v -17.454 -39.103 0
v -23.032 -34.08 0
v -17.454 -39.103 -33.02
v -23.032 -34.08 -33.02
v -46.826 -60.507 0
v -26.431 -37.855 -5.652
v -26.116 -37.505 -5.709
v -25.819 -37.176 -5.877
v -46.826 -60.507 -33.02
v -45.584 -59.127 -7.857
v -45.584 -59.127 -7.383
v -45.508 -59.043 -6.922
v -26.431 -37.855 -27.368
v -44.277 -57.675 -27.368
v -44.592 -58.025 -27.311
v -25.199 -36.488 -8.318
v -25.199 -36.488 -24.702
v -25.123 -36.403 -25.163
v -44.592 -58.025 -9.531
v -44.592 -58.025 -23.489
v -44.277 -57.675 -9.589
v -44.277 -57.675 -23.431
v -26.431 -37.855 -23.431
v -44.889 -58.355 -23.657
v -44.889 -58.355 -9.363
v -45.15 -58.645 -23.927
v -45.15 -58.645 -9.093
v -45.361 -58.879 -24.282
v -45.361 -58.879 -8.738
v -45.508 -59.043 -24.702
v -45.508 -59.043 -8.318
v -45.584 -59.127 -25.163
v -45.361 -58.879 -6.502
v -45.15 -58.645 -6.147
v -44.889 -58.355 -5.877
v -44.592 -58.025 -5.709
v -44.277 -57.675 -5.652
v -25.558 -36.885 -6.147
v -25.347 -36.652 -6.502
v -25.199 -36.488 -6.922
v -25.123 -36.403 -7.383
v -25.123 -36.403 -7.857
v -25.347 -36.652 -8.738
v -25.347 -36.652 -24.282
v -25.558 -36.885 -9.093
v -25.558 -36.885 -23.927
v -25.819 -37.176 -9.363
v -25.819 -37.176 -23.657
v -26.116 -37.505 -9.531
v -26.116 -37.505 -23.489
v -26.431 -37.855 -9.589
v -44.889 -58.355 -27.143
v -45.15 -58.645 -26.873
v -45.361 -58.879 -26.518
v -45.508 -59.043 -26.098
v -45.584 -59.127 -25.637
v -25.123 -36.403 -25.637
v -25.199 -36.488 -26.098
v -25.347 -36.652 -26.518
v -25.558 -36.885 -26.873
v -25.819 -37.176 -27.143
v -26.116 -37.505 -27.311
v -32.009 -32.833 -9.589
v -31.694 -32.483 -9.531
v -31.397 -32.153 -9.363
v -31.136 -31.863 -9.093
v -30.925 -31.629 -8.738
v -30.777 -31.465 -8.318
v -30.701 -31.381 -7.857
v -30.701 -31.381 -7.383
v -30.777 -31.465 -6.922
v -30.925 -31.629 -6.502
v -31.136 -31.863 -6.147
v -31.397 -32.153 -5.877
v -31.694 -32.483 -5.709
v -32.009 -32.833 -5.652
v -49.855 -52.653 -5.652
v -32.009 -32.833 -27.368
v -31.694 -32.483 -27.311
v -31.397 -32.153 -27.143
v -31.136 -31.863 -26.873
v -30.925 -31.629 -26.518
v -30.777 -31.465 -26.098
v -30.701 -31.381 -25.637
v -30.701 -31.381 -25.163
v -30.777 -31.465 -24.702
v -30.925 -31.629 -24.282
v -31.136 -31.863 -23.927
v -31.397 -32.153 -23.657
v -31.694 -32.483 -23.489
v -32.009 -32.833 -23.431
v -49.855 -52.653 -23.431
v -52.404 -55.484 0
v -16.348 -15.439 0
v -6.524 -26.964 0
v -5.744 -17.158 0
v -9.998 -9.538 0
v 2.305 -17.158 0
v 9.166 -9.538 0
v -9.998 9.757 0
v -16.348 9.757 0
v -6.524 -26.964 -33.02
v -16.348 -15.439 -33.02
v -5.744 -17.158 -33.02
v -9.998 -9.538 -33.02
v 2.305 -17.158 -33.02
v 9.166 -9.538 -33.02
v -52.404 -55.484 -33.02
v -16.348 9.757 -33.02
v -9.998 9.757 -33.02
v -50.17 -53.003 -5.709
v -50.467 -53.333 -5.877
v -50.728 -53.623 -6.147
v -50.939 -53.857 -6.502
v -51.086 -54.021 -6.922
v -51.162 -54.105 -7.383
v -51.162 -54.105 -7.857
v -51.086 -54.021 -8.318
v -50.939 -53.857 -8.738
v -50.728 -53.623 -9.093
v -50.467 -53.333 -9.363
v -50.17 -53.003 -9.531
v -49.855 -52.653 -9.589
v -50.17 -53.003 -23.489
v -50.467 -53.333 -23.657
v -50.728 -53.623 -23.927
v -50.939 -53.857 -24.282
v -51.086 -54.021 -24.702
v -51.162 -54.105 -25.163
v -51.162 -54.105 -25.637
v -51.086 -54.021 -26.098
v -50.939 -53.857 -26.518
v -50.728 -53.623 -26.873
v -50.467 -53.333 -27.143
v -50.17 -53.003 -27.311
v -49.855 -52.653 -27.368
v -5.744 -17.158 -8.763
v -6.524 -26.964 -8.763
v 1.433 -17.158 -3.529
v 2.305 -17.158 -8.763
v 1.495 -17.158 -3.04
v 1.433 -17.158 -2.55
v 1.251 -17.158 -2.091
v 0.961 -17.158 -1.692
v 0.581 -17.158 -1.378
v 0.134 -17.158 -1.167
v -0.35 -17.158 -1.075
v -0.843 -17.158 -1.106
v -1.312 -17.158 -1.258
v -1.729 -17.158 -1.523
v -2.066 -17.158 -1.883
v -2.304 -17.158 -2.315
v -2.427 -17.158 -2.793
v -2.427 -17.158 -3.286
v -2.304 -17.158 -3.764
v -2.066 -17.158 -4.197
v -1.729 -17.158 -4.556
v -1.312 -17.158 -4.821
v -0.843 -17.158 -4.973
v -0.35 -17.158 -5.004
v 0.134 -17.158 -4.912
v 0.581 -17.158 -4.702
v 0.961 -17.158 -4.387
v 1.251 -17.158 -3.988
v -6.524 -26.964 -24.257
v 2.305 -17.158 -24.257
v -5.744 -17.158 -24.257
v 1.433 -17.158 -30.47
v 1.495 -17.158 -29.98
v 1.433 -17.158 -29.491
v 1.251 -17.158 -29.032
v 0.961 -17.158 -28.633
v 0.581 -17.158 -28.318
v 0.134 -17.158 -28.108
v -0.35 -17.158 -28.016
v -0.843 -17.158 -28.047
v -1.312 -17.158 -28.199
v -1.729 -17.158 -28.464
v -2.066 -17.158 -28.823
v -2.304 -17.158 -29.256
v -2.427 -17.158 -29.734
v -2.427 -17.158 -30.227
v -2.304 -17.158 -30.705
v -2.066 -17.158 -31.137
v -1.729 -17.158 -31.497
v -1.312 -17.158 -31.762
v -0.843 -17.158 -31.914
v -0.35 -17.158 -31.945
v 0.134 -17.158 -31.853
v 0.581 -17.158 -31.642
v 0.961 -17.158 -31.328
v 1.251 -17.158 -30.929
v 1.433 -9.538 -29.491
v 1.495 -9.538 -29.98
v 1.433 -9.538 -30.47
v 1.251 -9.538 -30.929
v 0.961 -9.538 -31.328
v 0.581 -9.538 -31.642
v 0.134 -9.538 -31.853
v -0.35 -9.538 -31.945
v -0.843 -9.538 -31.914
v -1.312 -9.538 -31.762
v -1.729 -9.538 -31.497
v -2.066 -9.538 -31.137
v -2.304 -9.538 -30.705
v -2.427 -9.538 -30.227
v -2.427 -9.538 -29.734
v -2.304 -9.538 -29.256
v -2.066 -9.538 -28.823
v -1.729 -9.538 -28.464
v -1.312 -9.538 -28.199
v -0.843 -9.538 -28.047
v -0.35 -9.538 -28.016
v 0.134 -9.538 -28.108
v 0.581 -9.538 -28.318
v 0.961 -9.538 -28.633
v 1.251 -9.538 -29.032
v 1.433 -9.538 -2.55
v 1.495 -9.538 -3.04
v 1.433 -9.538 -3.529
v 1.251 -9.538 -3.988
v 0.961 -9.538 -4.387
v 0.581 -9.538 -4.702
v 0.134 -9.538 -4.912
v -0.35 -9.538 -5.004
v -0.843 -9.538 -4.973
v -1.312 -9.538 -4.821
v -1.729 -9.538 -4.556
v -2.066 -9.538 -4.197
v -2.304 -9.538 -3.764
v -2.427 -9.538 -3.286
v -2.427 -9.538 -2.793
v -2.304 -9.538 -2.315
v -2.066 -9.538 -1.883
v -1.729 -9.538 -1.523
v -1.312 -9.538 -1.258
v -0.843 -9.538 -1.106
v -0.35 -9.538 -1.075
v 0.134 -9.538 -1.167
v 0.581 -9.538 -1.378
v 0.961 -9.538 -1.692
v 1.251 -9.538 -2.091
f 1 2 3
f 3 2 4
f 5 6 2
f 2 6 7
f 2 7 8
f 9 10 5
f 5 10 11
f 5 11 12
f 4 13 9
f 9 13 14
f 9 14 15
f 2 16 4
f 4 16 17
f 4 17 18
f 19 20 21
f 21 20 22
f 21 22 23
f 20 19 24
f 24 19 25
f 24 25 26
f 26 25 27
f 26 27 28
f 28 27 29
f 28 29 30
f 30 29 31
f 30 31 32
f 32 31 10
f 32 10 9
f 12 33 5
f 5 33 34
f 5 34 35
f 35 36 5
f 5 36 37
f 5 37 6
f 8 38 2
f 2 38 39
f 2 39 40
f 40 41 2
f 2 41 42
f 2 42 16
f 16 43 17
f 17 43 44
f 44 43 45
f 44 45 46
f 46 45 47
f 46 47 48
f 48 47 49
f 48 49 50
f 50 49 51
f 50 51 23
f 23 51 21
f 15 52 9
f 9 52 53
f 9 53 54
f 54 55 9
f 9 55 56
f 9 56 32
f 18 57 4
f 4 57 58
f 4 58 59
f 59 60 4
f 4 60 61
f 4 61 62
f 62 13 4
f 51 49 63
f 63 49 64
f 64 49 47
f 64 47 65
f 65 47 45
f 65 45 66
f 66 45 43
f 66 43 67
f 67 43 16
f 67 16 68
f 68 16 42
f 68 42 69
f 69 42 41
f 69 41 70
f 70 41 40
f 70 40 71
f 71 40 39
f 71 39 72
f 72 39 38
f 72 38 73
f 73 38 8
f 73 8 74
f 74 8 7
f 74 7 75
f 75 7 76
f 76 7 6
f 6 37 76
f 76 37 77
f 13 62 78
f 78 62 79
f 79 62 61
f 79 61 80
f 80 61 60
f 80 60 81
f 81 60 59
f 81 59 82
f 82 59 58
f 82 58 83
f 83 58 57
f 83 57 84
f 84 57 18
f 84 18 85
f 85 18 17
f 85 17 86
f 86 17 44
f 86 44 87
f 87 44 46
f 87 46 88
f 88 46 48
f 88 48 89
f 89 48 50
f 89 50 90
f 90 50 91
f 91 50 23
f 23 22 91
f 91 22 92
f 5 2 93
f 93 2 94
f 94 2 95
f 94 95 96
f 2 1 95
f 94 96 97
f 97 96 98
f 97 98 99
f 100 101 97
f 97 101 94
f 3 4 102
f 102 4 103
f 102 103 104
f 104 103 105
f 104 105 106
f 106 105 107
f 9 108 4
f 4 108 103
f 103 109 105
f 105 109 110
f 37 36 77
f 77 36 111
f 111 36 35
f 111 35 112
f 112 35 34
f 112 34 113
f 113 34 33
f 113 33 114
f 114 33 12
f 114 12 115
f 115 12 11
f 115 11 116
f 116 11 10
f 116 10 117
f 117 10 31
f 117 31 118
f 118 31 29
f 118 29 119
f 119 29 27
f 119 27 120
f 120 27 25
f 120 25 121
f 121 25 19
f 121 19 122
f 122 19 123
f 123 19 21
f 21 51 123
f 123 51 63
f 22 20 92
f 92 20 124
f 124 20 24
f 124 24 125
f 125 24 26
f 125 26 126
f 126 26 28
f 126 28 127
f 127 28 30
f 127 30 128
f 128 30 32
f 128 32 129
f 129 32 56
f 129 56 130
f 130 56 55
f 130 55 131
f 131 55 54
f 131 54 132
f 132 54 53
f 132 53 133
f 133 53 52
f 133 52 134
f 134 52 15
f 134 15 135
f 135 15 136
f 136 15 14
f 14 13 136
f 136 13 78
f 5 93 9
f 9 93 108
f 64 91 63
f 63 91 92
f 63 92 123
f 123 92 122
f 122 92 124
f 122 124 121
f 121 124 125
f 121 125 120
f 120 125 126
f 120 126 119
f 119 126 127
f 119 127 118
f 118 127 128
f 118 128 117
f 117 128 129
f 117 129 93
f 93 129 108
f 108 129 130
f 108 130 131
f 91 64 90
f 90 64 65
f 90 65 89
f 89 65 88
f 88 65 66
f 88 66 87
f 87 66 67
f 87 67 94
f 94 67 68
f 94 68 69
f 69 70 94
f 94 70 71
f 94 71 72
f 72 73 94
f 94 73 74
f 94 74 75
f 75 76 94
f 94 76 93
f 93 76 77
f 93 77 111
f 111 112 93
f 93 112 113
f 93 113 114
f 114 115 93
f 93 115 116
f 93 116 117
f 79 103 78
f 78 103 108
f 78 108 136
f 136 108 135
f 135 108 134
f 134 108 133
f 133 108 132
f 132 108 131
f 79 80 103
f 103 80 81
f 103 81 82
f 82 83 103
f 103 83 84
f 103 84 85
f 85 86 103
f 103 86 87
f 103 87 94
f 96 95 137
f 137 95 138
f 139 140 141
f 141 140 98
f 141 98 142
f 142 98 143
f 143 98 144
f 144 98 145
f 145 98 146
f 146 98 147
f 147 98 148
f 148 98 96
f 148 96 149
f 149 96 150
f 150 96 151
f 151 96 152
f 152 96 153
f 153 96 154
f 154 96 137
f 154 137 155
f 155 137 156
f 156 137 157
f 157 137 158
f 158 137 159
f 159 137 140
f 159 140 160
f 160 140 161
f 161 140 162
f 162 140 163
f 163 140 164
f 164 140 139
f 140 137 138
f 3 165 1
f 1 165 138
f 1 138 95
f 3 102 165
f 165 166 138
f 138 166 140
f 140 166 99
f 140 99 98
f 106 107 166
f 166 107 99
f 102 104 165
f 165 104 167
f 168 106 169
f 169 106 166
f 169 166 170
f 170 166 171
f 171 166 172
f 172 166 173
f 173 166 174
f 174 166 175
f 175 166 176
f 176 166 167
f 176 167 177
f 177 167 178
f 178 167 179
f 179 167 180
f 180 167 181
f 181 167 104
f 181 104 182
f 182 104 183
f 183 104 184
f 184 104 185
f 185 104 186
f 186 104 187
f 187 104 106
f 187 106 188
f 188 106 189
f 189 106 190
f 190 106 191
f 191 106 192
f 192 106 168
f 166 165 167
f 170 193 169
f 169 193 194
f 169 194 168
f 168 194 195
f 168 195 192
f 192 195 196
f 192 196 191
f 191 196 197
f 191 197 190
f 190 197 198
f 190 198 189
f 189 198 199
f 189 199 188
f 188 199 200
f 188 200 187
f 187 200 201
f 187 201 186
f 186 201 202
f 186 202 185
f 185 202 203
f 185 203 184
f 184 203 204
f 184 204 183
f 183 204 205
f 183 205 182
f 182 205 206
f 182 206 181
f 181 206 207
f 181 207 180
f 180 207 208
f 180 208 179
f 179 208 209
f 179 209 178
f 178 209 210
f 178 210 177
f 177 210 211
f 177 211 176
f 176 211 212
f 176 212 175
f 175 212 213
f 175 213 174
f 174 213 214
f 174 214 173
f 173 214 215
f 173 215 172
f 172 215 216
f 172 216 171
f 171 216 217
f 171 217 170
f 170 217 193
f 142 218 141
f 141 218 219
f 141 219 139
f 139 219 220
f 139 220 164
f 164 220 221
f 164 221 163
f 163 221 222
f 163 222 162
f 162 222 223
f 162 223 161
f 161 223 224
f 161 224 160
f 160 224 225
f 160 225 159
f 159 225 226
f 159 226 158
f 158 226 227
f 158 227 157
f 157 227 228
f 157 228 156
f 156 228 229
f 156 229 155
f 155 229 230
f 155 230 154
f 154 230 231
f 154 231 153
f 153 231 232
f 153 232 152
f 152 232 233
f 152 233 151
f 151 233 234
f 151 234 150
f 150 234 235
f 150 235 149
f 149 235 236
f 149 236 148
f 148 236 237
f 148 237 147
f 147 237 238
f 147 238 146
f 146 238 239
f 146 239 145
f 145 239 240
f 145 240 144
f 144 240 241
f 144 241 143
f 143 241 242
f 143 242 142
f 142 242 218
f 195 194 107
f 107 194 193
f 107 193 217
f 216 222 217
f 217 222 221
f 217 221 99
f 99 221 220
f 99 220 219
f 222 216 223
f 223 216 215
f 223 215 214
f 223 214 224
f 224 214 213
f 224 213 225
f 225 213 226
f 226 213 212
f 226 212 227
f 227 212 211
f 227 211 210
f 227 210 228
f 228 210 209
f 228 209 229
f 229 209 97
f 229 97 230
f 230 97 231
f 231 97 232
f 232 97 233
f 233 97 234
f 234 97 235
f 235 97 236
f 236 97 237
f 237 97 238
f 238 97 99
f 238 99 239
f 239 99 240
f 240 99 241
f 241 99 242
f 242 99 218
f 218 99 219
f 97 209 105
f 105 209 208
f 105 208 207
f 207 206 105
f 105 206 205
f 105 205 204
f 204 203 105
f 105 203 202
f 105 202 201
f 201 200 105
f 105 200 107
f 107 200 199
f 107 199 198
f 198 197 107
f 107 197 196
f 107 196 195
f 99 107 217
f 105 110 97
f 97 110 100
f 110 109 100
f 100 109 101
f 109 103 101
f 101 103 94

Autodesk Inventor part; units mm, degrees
ref_plane "YZ Plane" through (0, 0, 0) normal (1, 0, 0) x (0, 1, 0)
ref_plane "XZ Plane" through (0, 0, 0) normal (0, 1, 0) x (-1, 0, 0)
ref_plane "Work Plane1" through (0, 0, 0) normal (0, 0, 1) x (1, 0, 0)
sketch "Sketch1" plane through (0, 0, 0) normal (0, 0, 1) x (1, 0, 0)
  line L0 (4.129202, -9.5377) -> (6.406797, -9.5377) construction
  line L1 (9.525, -8.41296) -> (9.525, -7.435497) construction
  line L2 (-6.406797, 9.5123) -> (-4.129202, 9.5123) construction
  line L3 (-9.525, 4.116502) -> (-9.525, 6.394097) construction
  line L4 (9.314549, -9.373063) -> (-73.965447, -101.864868) construction
  line L5 (9.166309, -9.5377) -> (-73.965447, -101.864868)
  line L6 (-73.965447, -101.864868) -> (-85.121243, -91.820144)
  line L7 (6.33881, 9.756536) -> (-85.121243, -91.820144) construction
  line L8 (9.166309, -9.5377) -> (-9.997679, -9.5377)
  line L9 (-9.997679, -9.5377) -> (-9.997679, 9.756536)
  line L10 (-9.997679, 9.756536) -> (-16.347679, 9.756536)
  line L11 (-16.347679, 9.756536) -> (-16.347679, -15.439362)
  line L12 (-16.347679, -15.439362) -> (-85.121243, -91.820144)
  point P0 (0, 0)
  dimension "d0" = 124.46
  dimension "d1" = 48
  dimension "d5" = 6.35
ref_plane "Work Plane2" through (-4.445, -9.144, -33.02) normal (0, 0, -1) x (0, 1, 0)
extrude "Extrusion1" add sketch "Sketch1" against normal up to surface (33.02 mm away)
sketch "Sketch2" plane through (-73.965447, -101.864868, -33.02) normal (-0.6691306, -0.7431448, 0) x (0.7431448, -0.6691306, 0)
  line L0 (0, 33.02) -> (0, 0)
  line L1 (-15.011605, 33.02) -> (-15.011605, 0)
  line L2 (0, 0) -> (-15.011605, 0)
  line L3 (-15.011605, 0) -> (-15.011605, 26.67)
  line L4 (-15.011605, 26.67) -> (0, 26.67)
  line L5 (0, 26.67) -> (0, 0)
  line L6 (-15.011605, 33.02) -> (0, 33.02)
  point P0 (-13.193862, 33.02)
  dimension "d19" = 6.35
extrude "Extrusion2" cut sketch "Sketch2" against normal blind 25.4 contours L0 L2 L1 L4
sketch "Sketch3" plane through (-73.965447, -101.864868, -6.35) normal (0, 0, -1) x (-0.7431448, 0.6691306, 0)
  line L0 (19.8882, 12.0904) -> (19.8882, 3.175) construction
  line L1 (0, 25.4) -> (15.011605, 25.4) construction
  line L2 (15.011605, 0) -> (0, 0) construction
  line L3 (0, 0) -> (19.8882, 0) construction
  line L4 (19.8882, 0) -> (19.8882, 25.4) construction
  line L5 (19.8882, 25.4) -> (0, 25.4) construction
  line L6 (0, 25.4) -> (0, 0) construction
  line L7 (15.011605, 0) -> (19.8882, 0)
  line L8 (19.8882, 0) -> (19.8882, 25.4)
  line L9 (19.8882, 25.4) -> (15.011605, 25.4)
  line L10 (15.011605, 25.4) -> (15.011605, 0)
  point P0 (13.193862, 125.192894)
extrude "Extrusion3" add sketch "Sketch3" against normal up to surface (6.35 mm away)
sketch "Sketch4" plane through (0, 0, 0) normal (0, 0, 1) x (1, 0, 0)
  line L0 (-88.74526, -88.557064) -> (-71.749342, -69.681186) construction
  line L1 (-73.965447, -101.864868) -> (9.166309, -9.5377) construction
  line L2 (-74.314967, -94.50927) -> (-67.5166, -86.958918) construction
  line L3 (-73.965447, -101.864868) -> (-56.969529, -82.988989) construction
  line L4 (-73.965447, -101.864868) -> (-88.74526, -88.557064) construction
  line L5 (-81.390199, -88.138702) -> (-74.591832, -80.588351) construction
  line L6 (-74.314967, -94.50927) -> (-67.5166, -86.958918) construction
  line L7 (-73.144662, -95.563017) -> (-66.346296, -88.012665)
  line L8 (-68.686904, -85.905171) -> (-75.485271, -93.455523)
  arc A0 (-75.485271, -93.455523) -> (-73.144662, -95.563017) centre (-74.314967, -94.50927) ccw
  arc A1 (-66.346296, -88.012665) -> (-68.686904, -85.905171) centre (-67.5166, -86.958918) ccw
  line L9 (-81.390199, -88.138702) -> (-74.591832, -80.588351) construction
  line L10 (-80.219894, -89.192449) -> (-73.421527, -81.642098)
  line L11 (-75.762136, -79.534604) -> (-82.560503, -87.084955)
  arc A2 (-82.560503, -87.084955) -> (-80.219894, -89.192449) centre (-81.390199, -88.138702) ccw
  arc A3 (-73.421527, -81.642098) -> (-75.762136, -79.534604) centre (-74.591832, -80.588351) ccw
  point P0 (0, 0)
  point P1 (-70.915783, -90.734094)
  point P2 (-77.991015, -84.363527)
  dimension "d37" = 10.16
  dimension "d38" = 5.1816
  dimension "d39" = 5.2324
  dimension "d40" = 9.52066
  dimension "d41" = 3.1496
  dimension "d42" = 3.1496
extrude "Extrusion4" cut sketch "Sketch4" against normal through all
sketch "Sketch6" plane through (-9.997679, -9.5377, 0) normal (0, 1, 0) x (1, 0, 0)
  arc A0 (9.506526, 4.79213) -> (10.740649, 4.300966) centre (9.523849, 3.039616) ccw construction
  arc A1 (9.506526, 31.732899) -> (10.740649, 31.241734) centre (9.523849, 29.980384) ccw construction
  circle A2 centre (9.523849, 29.980384) radius 1.9685
  circle A3 centre (9.523849, 3.039616) radius 1.9685
  point P0 (9.997679, 0)
  dimension "d24" = 3.937
  dimension "d25" = 3.937
extrude "Extrusion6" cut sketch "Sketch6" against normal through all
sketch "Sketch7" plane through (9.166309, -9.5377, 0) normal (0.7431448, -0.6691306, 0) x (0, 0, -1)
  line L0 (33.02, -98.838459) -> (33.02, 0) construction
  line L1 (33.02, -9.525) -> (0, -9.525) construction
  point P0 (0, 0.954435)
sketch "Sketch8" plane through (9.166309, -9.5377, -33.02) normal (0, 0, -1) x (-1, 0, 0)
  line L0 (11.608639, 0) -> (11.608639, -12.892699) construction
  line L1 (66.135838, -73.451289) -> (0, 0) construction
  line L2 (11.608639, -7.62) -> (6.861079, -7.62) construction
  line L3 (0, 0) -> (19.163987, 0) construction
  line L4 (7.671639, 0) -> (7.671639, -8.520218) construction
  line L5 (14.910639, 0) -> (14.910639, -14.251905) construction
  line L6 (6.861079, -7.62) -> (14.910639, -7.62)
  line L7 (83.131755, -92.327168) -> (0, 0)
  line L8 (15.69062, -17.426199) -> (6.861079, -7.62)
  line L9 (15.69062, -17.426199) -> (14.910639, -7.62)
  point P0 (9.166309, 9.5377)
  dimension "d28" = 7.62
  dimension "d29" = 3.302
extrude "Extrusion7" cut sketch "Sketch8" against normal blind 8.763
sketch "Sketch9" plane through (0, 0, 0) normal (0, 0, 1) x (1, 0, 0)
  line L0 (2.30523, -17.1577) -> (-5.74433, -17.1577) construction
  line L1 (-5.74433, -17.1577) -> (-6.524312, -26.963899) construction
  line L2 (2.30523, -17.1577) -> (-6.524312, -26.963899)
  line L3 (-73.965447, -101.864868) -> (9.166309, -9.5377)
  line L4 (2.30523, -17.1577) -> (-5.74433, -17.1577)
  line L5 (-5.2705, -26.963899) -> (-5.2705, -17.1577)
  point P0 (0, 0)
sketch "Sketch9 outline for Extrusion8" plane through (0, 0, 0) normal (0, 0, 1) x (1, 0, 0)
  line L0 (-6.524312, -26.963899) -> (2.30523, -17.1577)
  line L1 (-5.74433, -17.1577) -> (-6.524312, -26.963899)
  line L2 (2.30523, -17.1577) -> (-5.74433, -17.1577)
extrude "Extrusion8" cut sketch "Sketch9 outline for Extrusion8" against normal blind 8.763
sketch "Sketch10" plane through (9.166309, -9.5377, -33.02) normal (0, 0, -1) x (-1, 0, 0)
  line L0 (25.513987, -5.901662) -> (77.291634, -63.406565)
  line L1 (67.094084, -52.081038) -> (55.938287, -62.125762)
  line L2 (66.135838, -73.451289) -> (15.69062, -17.426199) construction
  line L3 (40.913229, -45.438744) -> (36.5125, -40.551239) construction
  line L4 (66.135838, -73.451289) -> (77.291634, -63.406565) construction
  point P0 (9.166309, 9.5377)
  dimension "d34" = 15.24
sketch "Sketch11" plane through (-73.965447, -101.864868, -6.35) normal (0, 0, -1) x (-0.7431448, 0.6691306, 0)
  arc A0 (3.6068, 5.2324) -> (6.7564, 5.2324) centre (5.1816, 5.2324) ccw construction
  arc A1 (6.7564, 15.3924) -> (3.6068, 15.3924) centre (5.1816, 15.3924) ccw construction
  line L0 (5.1816, 5.2324) -> (5.1816, 15.3924) construction
  arc A2 (13.127463, 5.2324) -> (16.277063, 5.2324) centre (14.702263, 5.2324) ccw construction
  arc A3 (16.277063, 15.3924) -> (13.127463, 15.3924) centre (14.702263, 15.3924) ccw construction
  line L1 (14.702263, 5.2324) -> (14.702263, 15.3924) construction
  line L2 (14.702263, 5.2324) -> (14.702263, 15.3924) construction
  line L3 (17.877263, 5.2324) -> (17.877263, 15.3924)
  line L4 (11.527263, 15.3924) -> (11.527263, 5.2324)
  arc A4 (11.527263, 5.2324) -> (17.877263, 5.2324) centre (14.702263, 5.2324) ccw
  arc A5 (17.877263, 15.3924) -> (11.527263, 15.3924) centre (14.702263, 15.3924) ccw
  line L5 (5.1816, 5.2324) -> (5.1816, 15.3924) construction
  line L6 (8.3566, 5.2324) -> (8.3566, 15.3924)
  line L7 (2.0066, 15.3924) -> (2.0066, 5.2324)
  arc A6 (2.0066, 5.2324) -> (8.3566, 5.2324) centre (5.1816, 5.2324) ccw
  arc A7 (8.3566, 15.3924) -> (2.0066, 15.3924) centre (5.1816, 15.3924) ccw
  point P0 (13.193862, 125.192894)
  point P1 (14.702263, 10.3124)
  point P2 (5.1816, 10.3124)
  dimension "d43" = 6.35
  dimension "d44" = 6.35
extrude "Extrusion9" cut sketch "Sketch11" against normal blind 3.556
split body "Split1" sketch "Sketch10" result one side removed curves L1 removed pieces at (-50.542289, -75.103577, -13.123333)
sketch "Sketch13" plane through (9.166309, -9.5377, -33.02) normal (0, 0, -1) x (-1, 0, 0)
  line L0 (55.938287, -62.125762) -> (15.69062, -17.426199)
  line L1 (55.938287, -62.125762) -> (67.094084, -52.081038)
  line L2 (55.938287, -62.125762) -> (50.414614, -55.991102)
  line L3 (50.414614, -55.991102) -> (61.570411, -45.946377)
  line L4 (61.570411, -45.946377) -> (67.094084, -52.081038)
  line L5 (67.094084, -52.081038) -> (55.938287, -62.125762)
  point P0 (9.166309, 9.5377)
  dimension "d48" = 8.255
extrude "Extrusion10" cut sketch "Sketch13" against normal through all
sketch "Sketch15" plane through (9.166309, -9.5377, 0) normal (0.7431448, -0.6691306, 0) x (0, 0, -1)
  line L0 (7.62, -71.533459) -> (7.62, -44.863459) construction
  line L1 (0, -75.343459) -> (0, -23.449264) construction
  line L2 (0, -75.343459) -> (33.02, -75.343459) construction
  line L3 (25.4, -71.533459) -> (25.4, -44.863459) construction
  line L4 (33.02, -75.343459) -> (33.02, -23.449264) construction
  line L5 (7.62, -71.533459) -> (7.62, -44.863459) construction
  line L6 (9.5885, -71.533459) -> (9.5885, -44.863459)
  line L7 (5.6515, -44.863459) -> (5.6515, -71.533459)
  arc A0 (5.6515, -71.533459) -> (9.5885, -71.533459) centre (7.62, -71.533459) ccw
  arc A1 (9.5885, -44.863459) -> (5.6515, -44.863459) centre (7.62, -44.863459) ccw
  line L8 (25.4, -71.533459) -> (25.4, -44.863459) construction
  line L9 (27.3685, -71.533459) -> (27.3685, -44.863459)
  line L10 (23.4315, -44.863459) -> (23.4315, -71.533459)
  arc A2 (23.4315, -71.533459) -> (27.3685, -71.533459) centre (25.4, -71.533459) ccw
  arc A3 (27.3685, -44.863459) -> (23.4315, -44.863459) centre (25.4, -44.863459) ccw
  point P0 (0, 0.954435)
  point P1 (7.62, -58.198459)
  point P2 (25.4, -58.198459)
  dimension "d51" = 7.62
  dimension "d52" = 3.81
  dimension "d53" = 7.62
  dimension "d54" = 30.48
  dimension "d55" = 3.81
  dimension "d56" = 30.48
  dimension "d57" = 3.937
  dimension "d58" = 3.937
extrude "Extrusion11" cut sketch "Sketch15" against normal through all
sketch "Sketch16" plane through (9.166309, -9.5377, -33.02) normal (0, 0, -1) x (-1, 0, 0)
  line L0 (50.414614, -55.991102) -> (15.69062, -17.426199)
  line L1 (50.414614, -55.991102) -> (26.62033, -29.564872)
  line L2 (26.62033, -29.564872) -> (32.198152, -24.542578)
  line L3 (32.198152, -24.542578) -> (55.992436, -50.968808)
  line L4 (55.992436, -50.968808) -> (50.414614, -55.991102)
  point P0 (9.166309, 9.5377)
  dimension "d61" = 35.56
  dimension "d62" = 7.5057
extrude "Extrusion12" cut sketch "Sketch16" against normal through all
properties part number "arm stop 48 degree bottom half"
